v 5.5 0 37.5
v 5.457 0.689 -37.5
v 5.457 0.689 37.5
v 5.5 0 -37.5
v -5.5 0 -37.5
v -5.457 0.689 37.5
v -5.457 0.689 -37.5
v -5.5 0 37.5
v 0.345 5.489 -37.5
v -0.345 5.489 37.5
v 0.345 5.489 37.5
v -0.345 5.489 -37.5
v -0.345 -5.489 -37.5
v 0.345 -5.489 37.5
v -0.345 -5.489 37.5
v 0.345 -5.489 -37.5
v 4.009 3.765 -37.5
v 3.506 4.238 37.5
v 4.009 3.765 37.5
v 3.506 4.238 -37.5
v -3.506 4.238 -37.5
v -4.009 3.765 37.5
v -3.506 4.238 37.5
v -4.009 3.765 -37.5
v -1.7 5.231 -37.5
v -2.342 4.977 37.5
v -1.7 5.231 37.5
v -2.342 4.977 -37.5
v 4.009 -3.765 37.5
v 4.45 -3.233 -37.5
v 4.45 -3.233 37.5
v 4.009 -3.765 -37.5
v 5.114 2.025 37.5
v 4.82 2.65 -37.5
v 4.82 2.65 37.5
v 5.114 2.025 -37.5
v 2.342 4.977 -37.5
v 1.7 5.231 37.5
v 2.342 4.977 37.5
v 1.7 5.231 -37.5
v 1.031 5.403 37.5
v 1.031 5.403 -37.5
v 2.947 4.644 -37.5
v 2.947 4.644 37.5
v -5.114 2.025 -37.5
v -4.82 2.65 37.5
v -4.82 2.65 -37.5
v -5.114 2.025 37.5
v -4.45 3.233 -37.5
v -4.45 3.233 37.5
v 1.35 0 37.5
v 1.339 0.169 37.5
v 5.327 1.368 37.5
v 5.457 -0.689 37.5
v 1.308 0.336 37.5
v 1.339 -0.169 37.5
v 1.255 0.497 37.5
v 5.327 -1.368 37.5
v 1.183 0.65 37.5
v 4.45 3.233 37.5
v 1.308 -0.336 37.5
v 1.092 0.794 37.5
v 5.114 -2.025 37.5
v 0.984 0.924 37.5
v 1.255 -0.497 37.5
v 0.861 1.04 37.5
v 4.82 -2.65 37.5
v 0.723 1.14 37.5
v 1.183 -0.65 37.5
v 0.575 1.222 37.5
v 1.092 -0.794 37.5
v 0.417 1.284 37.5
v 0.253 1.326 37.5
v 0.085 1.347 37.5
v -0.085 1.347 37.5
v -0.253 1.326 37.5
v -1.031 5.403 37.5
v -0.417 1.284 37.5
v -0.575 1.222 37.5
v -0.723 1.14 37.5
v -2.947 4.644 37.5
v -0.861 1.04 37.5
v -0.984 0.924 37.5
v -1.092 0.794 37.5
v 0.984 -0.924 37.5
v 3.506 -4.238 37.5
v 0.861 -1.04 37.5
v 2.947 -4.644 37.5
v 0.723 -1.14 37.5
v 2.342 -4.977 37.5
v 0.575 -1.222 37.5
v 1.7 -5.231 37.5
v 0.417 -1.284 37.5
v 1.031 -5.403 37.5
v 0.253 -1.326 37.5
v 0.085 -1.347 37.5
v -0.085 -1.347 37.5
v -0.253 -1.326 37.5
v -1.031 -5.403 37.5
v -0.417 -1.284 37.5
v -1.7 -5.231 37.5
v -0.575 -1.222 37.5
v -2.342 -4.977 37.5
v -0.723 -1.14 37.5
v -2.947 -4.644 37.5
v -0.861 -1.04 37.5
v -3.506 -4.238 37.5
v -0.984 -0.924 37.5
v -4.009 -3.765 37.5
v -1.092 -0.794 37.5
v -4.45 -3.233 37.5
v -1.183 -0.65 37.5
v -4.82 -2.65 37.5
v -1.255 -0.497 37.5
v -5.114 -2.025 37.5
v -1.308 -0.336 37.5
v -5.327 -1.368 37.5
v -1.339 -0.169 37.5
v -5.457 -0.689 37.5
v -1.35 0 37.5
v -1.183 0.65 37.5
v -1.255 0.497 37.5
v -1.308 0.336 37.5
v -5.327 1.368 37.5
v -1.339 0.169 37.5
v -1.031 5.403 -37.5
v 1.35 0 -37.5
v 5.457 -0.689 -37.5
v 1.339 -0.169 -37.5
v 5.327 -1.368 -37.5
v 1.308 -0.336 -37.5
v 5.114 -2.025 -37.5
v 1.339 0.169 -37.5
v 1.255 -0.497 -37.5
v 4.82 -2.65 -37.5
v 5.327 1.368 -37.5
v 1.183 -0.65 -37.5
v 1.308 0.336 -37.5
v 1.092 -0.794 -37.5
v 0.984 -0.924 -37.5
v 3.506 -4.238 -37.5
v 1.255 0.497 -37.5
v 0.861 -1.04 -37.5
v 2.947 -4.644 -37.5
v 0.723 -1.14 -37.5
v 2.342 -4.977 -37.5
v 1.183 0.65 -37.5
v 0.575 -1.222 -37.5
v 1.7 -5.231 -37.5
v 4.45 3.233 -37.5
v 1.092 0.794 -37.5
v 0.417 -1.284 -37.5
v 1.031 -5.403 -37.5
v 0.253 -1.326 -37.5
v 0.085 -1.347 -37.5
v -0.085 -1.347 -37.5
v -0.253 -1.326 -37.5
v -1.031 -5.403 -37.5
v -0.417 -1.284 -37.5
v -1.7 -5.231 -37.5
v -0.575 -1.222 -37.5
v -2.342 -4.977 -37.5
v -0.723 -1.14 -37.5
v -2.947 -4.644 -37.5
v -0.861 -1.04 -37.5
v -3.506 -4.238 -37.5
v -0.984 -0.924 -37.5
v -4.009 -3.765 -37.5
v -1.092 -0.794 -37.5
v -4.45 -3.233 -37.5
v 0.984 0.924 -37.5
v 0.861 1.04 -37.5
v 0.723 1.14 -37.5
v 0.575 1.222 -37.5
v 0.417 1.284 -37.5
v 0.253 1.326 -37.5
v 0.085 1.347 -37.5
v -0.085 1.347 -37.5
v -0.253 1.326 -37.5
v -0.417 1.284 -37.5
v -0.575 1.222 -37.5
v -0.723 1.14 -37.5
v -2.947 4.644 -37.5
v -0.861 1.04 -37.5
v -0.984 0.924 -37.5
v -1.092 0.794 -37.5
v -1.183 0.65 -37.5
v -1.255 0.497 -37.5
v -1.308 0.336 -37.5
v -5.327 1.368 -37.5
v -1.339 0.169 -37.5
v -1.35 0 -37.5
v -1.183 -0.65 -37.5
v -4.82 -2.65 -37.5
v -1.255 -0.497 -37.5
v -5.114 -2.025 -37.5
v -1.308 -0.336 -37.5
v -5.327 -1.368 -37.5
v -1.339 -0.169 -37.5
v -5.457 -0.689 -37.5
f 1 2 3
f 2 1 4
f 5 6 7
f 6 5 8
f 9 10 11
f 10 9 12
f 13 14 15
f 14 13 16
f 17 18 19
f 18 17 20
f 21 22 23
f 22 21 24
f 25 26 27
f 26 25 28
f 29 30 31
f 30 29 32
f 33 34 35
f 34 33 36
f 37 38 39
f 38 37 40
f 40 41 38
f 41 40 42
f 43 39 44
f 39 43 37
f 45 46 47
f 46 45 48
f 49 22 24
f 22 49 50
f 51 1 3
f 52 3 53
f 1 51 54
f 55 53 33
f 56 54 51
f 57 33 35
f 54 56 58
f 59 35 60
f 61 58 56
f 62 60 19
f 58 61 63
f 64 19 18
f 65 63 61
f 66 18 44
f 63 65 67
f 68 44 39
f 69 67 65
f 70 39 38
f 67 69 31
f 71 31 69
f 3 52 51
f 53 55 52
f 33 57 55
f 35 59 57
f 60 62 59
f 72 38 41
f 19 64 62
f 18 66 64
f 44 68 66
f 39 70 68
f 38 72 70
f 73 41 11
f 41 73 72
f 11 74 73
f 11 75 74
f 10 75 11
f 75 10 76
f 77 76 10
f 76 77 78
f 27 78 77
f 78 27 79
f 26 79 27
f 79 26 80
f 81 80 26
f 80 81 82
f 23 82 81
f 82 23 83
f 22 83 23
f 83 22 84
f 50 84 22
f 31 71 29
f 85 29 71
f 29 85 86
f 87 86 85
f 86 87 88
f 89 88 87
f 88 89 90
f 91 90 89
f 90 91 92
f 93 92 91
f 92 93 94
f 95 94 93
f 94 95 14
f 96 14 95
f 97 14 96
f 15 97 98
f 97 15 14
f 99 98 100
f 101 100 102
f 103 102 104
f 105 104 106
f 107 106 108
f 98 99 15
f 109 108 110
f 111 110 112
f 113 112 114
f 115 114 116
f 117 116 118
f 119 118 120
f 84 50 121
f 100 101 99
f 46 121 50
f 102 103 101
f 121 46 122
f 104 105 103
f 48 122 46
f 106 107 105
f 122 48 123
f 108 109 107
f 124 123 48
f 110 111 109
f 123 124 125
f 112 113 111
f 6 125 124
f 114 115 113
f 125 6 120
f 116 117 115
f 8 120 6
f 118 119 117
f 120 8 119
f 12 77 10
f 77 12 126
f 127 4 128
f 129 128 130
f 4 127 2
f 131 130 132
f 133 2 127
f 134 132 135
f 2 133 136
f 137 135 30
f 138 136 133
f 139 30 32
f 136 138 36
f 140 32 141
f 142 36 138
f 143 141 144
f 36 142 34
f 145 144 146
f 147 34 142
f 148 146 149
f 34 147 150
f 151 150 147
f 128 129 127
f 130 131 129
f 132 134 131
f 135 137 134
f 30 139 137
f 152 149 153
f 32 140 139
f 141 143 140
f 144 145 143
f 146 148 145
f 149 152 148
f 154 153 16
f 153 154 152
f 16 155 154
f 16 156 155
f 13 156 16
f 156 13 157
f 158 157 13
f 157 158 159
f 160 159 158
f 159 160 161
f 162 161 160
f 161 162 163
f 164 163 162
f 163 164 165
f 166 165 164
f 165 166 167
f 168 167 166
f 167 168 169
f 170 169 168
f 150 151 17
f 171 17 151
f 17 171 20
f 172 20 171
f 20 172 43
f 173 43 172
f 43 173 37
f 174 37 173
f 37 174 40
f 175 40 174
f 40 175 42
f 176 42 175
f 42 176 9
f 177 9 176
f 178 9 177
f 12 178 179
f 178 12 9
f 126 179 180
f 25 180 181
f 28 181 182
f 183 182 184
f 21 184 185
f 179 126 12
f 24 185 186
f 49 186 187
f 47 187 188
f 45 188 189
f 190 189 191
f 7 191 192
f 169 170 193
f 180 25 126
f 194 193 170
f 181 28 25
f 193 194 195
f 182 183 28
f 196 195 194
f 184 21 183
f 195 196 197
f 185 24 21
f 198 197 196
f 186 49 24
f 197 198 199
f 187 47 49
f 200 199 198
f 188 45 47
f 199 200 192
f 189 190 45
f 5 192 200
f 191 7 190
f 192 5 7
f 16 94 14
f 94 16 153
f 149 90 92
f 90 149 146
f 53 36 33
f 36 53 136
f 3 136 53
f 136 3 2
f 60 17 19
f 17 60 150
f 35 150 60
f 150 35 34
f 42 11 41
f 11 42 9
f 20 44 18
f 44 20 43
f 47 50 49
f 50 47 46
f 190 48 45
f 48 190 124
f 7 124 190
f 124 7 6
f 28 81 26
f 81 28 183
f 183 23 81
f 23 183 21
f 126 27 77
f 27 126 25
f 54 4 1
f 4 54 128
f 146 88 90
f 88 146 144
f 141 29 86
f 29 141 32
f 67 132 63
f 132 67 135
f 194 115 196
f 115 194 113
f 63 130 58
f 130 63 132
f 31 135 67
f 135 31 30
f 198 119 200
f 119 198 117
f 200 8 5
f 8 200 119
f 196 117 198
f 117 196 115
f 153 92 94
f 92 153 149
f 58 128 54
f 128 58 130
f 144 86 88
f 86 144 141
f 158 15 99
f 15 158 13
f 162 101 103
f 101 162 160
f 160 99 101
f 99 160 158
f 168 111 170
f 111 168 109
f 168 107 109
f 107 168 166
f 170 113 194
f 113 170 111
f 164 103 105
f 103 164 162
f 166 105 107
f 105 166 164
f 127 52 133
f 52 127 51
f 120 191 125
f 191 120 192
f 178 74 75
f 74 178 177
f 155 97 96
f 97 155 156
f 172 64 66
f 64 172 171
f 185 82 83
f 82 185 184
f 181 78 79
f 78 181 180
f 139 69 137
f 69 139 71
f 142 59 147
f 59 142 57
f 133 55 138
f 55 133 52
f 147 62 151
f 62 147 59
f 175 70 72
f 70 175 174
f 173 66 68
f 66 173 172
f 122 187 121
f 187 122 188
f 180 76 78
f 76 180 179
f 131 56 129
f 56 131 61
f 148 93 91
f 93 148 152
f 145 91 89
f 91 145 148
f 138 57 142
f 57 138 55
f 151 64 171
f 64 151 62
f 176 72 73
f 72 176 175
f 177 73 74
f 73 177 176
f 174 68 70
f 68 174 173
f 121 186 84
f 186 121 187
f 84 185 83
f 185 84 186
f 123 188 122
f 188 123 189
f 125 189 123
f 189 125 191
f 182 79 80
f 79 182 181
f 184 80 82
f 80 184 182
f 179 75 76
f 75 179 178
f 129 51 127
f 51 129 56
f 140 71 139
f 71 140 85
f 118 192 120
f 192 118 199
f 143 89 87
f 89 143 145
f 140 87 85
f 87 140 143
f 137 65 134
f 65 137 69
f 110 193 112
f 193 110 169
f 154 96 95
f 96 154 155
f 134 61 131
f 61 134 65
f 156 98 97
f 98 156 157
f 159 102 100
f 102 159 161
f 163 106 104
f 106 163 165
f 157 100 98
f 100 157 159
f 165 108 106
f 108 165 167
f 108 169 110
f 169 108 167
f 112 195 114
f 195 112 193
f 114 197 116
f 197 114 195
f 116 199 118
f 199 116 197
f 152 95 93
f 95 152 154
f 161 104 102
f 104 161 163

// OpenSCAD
$fn = 50;


difference() {
	union() {
		translate(v = [0, 0, -37.5000000000]) {
			cylinder(h = 75, r = 5.5000000000);
		}
	}
	union() {
		translate(v = [0, 0, -100.0000000000]) {
			cylinder(h = 200, r = 1.3500000000);
		}
	}
}
